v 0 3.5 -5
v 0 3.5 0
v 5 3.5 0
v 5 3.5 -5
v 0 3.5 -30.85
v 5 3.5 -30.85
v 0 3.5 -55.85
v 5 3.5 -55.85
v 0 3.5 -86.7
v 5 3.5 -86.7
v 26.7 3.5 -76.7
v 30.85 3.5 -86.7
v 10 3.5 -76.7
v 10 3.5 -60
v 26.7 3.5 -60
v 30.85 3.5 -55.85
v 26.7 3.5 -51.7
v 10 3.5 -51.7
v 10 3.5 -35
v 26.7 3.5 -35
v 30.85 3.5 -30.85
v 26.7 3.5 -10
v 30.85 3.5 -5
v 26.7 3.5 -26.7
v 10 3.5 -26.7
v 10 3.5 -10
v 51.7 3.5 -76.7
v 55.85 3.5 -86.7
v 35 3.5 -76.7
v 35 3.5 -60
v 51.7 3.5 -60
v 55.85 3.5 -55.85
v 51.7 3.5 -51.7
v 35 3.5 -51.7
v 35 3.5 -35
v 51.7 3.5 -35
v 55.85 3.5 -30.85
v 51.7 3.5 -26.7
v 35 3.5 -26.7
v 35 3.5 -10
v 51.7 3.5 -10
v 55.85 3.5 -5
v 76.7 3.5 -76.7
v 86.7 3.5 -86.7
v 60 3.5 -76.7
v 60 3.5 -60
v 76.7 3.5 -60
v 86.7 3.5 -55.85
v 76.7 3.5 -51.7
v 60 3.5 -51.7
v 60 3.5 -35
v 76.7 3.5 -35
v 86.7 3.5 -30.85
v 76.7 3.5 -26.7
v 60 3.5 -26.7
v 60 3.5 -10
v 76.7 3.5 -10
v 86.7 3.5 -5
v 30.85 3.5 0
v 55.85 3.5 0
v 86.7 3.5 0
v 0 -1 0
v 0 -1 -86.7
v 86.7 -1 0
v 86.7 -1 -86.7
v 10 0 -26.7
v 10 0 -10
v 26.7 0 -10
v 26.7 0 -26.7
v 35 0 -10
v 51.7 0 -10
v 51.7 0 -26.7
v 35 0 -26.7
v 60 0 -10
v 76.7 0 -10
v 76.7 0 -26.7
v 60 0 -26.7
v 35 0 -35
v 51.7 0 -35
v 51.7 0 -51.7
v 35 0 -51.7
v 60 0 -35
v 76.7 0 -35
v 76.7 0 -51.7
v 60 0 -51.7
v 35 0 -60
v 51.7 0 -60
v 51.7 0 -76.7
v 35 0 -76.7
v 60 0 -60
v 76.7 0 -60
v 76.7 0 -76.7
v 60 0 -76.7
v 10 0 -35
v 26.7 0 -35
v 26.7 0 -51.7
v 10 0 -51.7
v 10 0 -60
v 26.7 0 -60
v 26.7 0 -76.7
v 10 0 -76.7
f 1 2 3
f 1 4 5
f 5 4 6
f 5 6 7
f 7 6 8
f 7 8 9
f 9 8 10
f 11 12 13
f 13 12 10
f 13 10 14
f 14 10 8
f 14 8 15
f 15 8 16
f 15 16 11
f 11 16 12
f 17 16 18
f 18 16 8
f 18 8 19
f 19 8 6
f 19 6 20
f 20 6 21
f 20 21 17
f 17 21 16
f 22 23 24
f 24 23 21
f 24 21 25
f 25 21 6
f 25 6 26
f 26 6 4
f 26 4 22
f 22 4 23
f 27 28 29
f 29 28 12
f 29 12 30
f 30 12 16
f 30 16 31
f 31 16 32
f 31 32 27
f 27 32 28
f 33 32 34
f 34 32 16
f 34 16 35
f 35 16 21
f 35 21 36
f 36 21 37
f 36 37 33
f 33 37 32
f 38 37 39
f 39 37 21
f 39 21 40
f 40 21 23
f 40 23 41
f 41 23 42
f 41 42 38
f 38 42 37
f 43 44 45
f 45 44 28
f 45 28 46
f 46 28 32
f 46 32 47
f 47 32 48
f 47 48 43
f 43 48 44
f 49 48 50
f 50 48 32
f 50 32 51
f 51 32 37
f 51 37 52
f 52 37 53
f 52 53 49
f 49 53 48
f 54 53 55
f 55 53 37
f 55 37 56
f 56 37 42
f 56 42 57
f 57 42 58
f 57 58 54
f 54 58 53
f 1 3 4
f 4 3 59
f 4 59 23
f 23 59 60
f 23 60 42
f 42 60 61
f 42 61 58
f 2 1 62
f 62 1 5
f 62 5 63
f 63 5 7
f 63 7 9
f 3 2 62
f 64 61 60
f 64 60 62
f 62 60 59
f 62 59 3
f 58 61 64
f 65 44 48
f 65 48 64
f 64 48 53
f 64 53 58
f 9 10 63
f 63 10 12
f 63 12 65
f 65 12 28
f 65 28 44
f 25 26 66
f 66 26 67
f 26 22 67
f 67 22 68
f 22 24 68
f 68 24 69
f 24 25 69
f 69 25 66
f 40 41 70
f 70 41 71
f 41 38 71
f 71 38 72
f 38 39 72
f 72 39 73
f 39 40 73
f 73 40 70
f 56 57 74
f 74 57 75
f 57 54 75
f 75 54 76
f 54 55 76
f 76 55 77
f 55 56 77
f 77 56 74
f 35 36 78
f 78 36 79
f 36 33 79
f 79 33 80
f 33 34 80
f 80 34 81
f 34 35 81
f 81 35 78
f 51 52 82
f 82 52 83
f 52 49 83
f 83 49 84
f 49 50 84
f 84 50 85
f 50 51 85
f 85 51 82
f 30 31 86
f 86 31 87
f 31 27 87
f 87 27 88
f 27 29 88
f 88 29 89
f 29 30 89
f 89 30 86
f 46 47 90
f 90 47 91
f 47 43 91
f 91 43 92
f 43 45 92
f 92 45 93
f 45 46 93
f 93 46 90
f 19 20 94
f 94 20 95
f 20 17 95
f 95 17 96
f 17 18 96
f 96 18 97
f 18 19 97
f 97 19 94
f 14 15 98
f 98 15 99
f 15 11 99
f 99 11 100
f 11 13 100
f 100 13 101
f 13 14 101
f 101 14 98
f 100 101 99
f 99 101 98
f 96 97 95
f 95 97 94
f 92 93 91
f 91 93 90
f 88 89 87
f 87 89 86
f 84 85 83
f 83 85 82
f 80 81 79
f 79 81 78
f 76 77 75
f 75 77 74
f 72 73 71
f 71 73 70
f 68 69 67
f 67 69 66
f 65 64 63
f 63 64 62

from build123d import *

# Parameters (mm, degrees)
ESQUISSE1_W        = 86.7
ESQUISSE1_H        = 86.7
ESQUISSE1_W_2      = 16.7
ESQUISSE1_H_2      = 16.7
BOSS_EXTRU_1_DEPTH = 3.5
ESQUISSE2_W        = 86.7
ESQUISSE2_H        = 86.7
BOSS_EXTRU_2_DEPTH = 1


with BuildPart() as part:
    # Esquisse1 → Boss.-Extru.1 (new body)
    with BuildSketch(Plane(origin=(0, 0, 0), x_dir=(1, 0, 0), z_dir=(0, 1, 0))):
        with Locations((43.35, 43.35)):
            Rectangle(ESQUISSE1_W, ESQUISSE1_H)
        with Locations((43.35, 18.35)):
            Rectangle(ESQUISSE1_W_2, ESQUISSE1_H_2, mode=Mode.SUBTRACT)
        with Locations((18.35, 18.35)):
            Rectangle(ESQUISSE1_W_2, ESQUISSE1_H_2, mode=Mode.SUBTRACT)
        with Locations((68.35, 18.35)):
            Rectangle(ESQUISSE1_W_2, ESQUISSE1_H_2, mode=Mode.SUBTRACT)
        with Locations((43.35, 43.35)):
            Rectangle(ESQUISSE1_W_2, ESQUISSE1_H_2, mode=Mode.SUBTRACT)
        with Locations((68.35, 43.35)):
            Rectangle(ESQUISSE1_W_2, ESQUISSE1_H_2, mode=Mode.SUBTRACT)
        with Locations((43.35, 68.35)):
            Rectangle(ESQUISSE1_W_2, ESQUISSE1_H_2, mode=Mode.SUBTRACT)
        with Locations((68.35, 68.35)):
            Rectangle(ESQUISSE1_W_2, ESQUISSE1_H_2, mode=Mode.SUBTRACT)
        with Locations((18.35, 43.35)):
            Rectangle(ESQUISSE1_W_2, ESQUISSE1_H_2, mode=Mode.SUBTRACT)
        with Locations((18.35, 68.35)):
            Rectangle(ESQUISSE1_W_2, ESQUISSE1_H_2, mode=Mode.SUBTRACT)
    extrude(amount=BOSS_EXTRU_1_DEPTH)

    # Esquisse2 → Boss.-Extru.2 (add)
    with BuildSketch(Plane.XZ):
        with Locations((43.35, -43.35)):
            Rectangle(ESQUISSE2_W, ESQUISSE2_H)
    extrude(amount=BOSS_EXTRU_2_DEPTH)


solid = part.part
